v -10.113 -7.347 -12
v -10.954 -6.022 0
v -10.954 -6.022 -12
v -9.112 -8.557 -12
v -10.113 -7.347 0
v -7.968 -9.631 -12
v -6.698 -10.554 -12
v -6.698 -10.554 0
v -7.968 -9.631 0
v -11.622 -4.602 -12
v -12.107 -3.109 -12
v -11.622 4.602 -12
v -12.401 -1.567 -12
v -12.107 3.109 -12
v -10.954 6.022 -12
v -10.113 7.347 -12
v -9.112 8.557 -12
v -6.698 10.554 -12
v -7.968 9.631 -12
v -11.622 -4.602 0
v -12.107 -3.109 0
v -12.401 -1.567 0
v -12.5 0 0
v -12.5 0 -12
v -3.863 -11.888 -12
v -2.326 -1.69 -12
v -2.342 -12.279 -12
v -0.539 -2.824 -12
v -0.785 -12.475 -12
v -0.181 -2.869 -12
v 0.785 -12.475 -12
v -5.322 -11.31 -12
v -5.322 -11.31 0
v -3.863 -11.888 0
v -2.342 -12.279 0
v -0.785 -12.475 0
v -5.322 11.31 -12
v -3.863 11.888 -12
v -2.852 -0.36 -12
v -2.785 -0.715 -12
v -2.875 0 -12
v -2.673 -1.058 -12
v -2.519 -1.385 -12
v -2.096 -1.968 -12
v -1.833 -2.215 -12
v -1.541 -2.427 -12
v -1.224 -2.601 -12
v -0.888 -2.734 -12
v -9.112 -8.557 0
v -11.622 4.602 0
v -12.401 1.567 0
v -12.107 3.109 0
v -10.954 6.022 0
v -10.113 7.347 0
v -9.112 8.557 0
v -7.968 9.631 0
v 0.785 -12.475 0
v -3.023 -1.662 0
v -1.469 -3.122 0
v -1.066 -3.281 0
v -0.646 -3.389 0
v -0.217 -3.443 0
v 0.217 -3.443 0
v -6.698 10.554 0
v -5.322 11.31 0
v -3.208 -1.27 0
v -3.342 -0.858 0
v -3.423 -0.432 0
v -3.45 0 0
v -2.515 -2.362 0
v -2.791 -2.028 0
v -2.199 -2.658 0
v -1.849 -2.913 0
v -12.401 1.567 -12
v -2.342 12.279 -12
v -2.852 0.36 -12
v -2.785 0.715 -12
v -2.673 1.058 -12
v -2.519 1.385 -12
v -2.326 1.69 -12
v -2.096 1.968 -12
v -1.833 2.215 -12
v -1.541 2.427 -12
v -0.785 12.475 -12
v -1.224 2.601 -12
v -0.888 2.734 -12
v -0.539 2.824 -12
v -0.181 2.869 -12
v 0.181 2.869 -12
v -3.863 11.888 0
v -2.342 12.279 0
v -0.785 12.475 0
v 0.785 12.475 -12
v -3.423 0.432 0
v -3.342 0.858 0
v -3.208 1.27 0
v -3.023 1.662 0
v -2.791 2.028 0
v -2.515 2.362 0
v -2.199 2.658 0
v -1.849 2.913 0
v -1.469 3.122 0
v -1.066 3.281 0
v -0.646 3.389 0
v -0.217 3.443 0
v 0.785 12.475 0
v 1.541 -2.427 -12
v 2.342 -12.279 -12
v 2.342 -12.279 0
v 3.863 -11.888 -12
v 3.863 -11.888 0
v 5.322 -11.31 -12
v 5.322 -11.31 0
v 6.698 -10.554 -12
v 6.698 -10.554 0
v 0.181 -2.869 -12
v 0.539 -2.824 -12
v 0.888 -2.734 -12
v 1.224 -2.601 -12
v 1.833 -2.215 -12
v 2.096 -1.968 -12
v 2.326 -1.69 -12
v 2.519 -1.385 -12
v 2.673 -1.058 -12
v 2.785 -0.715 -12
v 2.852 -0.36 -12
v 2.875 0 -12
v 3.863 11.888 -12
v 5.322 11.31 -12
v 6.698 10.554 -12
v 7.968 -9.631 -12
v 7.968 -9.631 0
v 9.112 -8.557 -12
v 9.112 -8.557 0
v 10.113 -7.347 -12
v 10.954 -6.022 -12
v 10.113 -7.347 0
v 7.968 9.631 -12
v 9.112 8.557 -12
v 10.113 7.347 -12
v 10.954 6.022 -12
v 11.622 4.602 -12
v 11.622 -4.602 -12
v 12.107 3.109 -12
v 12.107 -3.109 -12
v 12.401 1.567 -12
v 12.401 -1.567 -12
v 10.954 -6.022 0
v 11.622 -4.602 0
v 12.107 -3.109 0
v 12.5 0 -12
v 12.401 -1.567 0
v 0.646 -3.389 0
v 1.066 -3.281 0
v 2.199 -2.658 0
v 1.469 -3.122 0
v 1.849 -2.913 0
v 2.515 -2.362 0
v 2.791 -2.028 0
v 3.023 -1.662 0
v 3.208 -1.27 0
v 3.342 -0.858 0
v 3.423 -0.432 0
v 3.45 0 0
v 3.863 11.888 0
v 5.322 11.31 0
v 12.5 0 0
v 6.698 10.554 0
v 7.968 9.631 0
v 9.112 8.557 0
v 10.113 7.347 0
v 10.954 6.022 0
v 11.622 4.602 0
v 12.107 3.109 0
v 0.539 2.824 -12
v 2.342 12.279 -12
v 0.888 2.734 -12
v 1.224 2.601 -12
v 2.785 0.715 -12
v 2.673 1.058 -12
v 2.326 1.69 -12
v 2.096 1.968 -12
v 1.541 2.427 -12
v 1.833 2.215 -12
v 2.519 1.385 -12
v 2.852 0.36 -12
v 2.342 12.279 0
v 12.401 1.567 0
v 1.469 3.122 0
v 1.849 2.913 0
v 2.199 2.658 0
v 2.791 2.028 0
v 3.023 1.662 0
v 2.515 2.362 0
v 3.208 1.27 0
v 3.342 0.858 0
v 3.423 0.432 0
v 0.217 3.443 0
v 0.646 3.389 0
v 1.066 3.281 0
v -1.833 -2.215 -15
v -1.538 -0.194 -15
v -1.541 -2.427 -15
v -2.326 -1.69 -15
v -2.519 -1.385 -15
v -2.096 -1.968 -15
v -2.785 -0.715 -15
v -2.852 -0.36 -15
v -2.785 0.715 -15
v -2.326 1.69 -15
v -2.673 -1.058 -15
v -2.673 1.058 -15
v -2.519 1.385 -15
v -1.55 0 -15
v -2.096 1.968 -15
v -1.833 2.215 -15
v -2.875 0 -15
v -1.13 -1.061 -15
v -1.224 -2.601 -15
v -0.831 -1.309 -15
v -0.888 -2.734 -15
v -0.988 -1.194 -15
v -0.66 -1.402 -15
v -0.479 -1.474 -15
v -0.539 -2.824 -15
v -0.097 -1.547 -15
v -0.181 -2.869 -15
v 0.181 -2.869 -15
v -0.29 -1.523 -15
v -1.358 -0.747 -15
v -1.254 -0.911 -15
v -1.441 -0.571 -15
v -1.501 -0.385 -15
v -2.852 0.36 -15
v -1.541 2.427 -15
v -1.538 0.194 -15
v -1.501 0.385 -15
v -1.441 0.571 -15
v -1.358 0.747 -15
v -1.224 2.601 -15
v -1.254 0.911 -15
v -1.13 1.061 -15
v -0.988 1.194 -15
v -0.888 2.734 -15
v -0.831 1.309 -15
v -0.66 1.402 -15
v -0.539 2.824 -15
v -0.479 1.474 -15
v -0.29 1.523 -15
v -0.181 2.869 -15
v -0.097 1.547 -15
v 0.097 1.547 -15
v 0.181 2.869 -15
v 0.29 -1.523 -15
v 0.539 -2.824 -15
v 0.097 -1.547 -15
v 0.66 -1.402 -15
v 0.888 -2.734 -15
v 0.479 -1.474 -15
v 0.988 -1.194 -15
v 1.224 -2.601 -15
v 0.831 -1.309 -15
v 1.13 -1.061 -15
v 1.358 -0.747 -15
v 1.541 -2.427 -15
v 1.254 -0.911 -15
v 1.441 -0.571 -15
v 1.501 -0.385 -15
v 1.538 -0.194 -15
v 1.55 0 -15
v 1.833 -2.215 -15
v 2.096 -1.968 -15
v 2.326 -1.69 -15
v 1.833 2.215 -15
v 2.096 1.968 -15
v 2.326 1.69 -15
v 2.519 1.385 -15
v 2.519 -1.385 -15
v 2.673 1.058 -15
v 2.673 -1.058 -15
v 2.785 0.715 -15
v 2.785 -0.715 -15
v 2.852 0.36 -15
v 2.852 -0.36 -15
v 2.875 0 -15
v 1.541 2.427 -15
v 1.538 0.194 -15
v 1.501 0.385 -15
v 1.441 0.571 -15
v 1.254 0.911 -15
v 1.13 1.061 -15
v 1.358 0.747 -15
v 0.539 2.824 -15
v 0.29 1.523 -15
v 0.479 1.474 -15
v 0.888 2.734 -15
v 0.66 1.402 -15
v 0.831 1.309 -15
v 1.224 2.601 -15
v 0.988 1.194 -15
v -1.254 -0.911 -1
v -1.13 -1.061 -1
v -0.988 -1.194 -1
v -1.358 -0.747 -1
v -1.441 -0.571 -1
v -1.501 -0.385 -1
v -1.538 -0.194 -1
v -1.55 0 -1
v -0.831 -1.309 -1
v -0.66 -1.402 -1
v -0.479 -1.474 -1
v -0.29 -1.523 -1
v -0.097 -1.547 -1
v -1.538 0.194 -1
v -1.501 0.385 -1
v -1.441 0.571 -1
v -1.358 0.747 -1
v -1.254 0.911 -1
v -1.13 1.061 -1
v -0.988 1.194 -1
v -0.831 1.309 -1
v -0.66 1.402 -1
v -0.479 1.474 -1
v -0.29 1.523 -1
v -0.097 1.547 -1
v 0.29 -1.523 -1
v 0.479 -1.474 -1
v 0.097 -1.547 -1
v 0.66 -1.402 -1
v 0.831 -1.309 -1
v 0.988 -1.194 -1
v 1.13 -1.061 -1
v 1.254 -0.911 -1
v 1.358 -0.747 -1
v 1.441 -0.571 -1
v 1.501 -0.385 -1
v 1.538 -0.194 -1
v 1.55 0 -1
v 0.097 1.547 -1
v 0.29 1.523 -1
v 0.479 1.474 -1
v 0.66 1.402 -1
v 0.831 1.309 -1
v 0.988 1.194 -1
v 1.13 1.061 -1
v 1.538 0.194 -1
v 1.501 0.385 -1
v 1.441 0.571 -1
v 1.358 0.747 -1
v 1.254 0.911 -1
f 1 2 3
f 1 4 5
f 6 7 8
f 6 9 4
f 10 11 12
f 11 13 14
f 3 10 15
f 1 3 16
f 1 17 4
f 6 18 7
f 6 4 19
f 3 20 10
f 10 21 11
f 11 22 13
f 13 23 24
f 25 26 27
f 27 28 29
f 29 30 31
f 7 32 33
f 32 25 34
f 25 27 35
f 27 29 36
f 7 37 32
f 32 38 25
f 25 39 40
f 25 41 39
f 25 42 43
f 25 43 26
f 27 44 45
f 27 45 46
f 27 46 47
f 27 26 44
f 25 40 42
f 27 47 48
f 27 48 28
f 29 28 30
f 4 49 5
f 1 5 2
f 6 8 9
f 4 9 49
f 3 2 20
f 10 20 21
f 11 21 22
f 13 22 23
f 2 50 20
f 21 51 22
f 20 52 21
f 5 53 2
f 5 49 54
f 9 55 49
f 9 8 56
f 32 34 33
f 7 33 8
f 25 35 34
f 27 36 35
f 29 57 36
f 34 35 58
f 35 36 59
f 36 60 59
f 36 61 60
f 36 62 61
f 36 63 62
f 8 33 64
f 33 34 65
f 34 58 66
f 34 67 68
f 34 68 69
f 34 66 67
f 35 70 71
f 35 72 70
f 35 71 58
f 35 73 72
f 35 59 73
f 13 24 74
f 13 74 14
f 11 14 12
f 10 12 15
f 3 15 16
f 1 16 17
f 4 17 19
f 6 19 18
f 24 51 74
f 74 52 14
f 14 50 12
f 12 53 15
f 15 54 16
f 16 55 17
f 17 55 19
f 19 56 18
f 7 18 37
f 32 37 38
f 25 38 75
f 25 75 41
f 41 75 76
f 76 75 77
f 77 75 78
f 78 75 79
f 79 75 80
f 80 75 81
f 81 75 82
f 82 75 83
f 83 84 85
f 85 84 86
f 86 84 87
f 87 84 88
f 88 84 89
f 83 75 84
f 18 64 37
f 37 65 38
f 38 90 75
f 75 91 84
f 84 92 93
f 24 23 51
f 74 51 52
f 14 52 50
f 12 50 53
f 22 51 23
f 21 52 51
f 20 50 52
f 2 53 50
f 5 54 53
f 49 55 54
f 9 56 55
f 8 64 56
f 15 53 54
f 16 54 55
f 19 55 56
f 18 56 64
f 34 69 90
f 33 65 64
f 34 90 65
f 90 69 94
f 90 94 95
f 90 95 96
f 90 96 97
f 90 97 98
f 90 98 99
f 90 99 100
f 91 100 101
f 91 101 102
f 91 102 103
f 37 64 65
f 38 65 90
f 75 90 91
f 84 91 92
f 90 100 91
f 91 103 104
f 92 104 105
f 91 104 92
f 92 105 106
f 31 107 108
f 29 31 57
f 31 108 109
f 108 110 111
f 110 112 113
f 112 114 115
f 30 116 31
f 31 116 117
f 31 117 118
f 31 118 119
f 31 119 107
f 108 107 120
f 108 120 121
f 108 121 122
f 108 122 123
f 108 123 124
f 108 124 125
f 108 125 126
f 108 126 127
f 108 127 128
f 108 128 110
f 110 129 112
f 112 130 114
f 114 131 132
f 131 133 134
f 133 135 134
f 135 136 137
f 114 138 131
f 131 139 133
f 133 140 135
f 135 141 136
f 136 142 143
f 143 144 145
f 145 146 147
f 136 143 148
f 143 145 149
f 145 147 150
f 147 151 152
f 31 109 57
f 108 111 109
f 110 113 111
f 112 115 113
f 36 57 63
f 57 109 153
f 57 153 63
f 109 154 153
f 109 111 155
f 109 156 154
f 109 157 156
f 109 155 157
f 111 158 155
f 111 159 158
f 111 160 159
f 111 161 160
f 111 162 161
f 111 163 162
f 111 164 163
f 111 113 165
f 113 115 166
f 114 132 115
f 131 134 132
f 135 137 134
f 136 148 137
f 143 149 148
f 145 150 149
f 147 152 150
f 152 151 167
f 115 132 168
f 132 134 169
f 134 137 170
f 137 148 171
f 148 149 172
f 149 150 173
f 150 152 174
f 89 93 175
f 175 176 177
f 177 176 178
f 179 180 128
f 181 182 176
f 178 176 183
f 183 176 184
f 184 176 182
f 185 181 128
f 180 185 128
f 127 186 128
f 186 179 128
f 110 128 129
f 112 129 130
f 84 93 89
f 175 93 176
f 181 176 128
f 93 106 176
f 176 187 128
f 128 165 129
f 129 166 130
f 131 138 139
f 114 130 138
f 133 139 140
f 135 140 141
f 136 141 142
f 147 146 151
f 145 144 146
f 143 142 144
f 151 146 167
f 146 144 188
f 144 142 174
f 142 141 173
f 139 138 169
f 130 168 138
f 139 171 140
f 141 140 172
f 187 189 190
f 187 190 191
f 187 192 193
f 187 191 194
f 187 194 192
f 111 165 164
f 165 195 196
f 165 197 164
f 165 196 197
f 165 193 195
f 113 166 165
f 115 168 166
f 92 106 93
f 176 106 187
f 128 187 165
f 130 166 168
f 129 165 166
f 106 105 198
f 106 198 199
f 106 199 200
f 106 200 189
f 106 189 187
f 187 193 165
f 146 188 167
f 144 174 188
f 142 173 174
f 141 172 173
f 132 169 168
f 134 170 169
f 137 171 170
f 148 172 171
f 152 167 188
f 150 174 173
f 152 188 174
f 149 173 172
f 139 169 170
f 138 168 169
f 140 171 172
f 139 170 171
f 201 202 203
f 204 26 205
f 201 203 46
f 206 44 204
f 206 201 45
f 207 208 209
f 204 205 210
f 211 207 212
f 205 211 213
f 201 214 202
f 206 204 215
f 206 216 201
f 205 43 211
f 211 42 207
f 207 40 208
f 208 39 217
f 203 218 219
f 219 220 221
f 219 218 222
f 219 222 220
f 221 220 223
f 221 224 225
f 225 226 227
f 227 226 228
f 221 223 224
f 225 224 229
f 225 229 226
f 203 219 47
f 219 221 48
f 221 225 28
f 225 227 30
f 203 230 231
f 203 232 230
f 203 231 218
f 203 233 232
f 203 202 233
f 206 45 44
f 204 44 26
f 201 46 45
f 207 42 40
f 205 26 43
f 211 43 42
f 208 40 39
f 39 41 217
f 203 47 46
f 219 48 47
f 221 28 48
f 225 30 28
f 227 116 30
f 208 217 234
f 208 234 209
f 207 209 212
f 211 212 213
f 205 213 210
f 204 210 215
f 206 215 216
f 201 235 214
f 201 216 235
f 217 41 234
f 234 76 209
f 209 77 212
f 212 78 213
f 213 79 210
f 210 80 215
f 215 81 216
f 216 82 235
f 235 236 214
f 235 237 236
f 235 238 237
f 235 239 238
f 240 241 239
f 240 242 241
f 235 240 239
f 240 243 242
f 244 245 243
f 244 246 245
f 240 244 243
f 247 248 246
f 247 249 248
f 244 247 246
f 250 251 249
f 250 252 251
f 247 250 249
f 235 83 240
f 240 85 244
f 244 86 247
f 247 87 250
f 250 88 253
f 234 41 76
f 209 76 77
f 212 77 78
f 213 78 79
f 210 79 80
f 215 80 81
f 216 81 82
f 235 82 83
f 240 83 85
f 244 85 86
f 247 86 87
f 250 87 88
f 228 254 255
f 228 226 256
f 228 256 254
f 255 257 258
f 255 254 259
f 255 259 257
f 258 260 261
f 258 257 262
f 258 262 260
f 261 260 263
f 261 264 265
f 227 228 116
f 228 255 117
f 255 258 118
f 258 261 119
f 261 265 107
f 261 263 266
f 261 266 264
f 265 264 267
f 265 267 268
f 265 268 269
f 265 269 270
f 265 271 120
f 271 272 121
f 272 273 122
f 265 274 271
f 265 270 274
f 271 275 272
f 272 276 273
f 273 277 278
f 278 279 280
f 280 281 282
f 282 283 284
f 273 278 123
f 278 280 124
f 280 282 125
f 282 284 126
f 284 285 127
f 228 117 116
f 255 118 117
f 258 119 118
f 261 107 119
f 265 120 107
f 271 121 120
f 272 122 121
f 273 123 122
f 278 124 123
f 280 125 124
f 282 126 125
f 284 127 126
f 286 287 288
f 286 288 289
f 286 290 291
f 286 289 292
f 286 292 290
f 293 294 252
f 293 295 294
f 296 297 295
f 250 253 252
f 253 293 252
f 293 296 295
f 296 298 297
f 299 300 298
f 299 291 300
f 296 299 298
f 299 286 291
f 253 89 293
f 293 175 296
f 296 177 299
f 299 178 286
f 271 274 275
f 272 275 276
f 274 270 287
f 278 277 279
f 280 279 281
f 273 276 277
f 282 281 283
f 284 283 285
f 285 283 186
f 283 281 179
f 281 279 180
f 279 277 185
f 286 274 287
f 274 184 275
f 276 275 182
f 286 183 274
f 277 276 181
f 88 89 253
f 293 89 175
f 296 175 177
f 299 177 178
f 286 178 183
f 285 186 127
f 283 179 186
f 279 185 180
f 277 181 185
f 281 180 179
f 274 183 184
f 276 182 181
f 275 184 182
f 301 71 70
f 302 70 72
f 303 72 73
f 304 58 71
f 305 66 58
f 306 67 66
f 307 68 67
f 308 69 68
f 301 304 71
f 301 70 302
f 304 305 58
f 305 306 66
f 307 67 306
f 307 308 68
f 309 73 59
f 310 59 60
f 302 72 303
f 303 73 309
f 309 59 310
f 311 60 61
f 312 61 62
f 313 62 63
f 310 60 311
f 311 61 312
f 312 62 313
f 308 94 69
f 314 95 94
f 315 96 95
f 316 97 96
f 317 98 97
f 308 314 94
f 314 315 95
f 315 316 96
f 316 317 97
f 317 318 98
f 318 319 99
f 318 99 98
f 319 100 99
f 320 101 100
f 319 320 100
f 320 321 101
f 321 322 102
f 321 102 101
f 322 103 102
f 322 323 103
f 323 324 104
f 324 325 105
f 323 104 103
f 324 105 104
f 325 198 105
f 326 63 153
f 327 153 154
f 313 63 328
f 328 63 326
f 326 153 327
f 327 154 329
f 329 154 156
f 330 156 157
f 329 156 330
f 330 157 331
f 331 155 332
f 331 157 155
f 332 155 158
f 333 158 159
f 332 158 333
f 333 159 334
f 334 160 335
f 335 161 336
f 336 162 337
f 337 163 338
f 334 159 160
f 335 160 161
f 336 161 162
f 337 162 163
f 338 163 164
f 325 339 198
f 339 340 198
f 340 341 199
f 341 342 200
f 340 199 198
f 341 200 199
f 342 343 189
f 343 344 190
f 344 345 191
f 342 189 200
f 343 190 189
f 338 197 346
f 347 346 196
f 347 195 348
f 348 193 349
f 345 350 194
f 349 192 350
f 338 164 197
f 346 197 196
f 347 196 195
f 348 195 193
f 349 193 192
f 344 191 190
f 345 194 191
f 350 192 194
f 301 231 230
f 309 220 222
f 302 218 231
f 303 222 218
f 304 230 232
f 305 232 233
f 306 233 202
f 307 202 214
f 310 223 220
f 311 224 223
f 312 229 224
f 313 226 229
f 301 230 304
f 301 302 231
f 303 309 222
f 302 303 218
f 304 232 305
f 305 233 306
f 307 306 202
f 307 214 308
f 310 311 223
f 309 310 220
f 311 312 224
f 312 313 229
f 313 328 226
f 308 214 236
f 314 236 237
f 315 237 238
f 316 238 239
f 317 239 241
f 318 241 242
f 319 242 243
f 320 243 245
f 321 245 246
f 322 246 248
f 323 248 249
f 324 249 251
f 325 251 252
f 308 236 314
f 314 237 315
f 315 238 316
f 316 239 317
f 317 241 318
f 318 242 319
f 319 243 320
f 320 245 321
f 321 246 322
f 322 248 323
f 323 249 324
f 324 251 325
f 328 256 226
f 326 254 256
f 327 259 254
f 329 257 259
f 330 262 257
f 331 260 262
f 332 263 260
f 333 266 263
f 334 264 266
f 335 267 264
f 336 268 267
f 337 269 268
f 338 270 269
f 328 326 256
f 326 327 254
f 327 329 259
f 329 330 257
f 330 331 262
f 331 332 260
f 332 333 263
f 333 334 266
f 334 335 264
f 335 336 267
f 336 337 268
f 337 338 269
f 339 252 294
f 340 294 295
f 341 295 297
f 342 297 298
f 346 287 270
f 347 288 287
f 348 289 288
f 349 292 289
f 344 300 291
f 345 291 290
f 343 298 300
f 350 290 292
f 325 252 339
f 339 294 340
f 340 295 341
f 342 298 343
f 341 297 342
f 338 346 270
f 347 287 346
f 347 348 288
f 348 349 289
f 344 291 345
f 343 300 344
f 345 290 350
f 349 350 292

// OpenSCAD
$fn = 50;


difference() {
	union() {
		translate(v = [0, 0, -12.0000000000]) {
			cylinder(h = 12, r = 12.5000000000);
		}
		#translate(v = [0, 0, -15.0000000000]) {
			cylinder(h = 15, r = 2.8750000000);
		}
	}
	union() {
		translate(v = [0, 0, 0]) {
			rotate(a = [0, 0, 0]) {
				difference() {
					union() {
						translate(v = [0, 0, -15.0000000000]) {
							cylinder(h = 15, r = 1.2500000000);
						}
						translate(v = [0, 0, -1.0000000000]) {
							cylinder(h = 1.0000000000, r1 = 1.5500000000, r2 = 3.4500000000);
						}
						translate(v = [0, 0, -15.0000000000]) {
							cylinder(h = 15, r = 1.5500000000);
						}
						translate(v = [0, 0, -15.0000000000]) {
							cylinder(h = 15, r = 1.2500000000);
						}
					}
					union();
				}
			}
		}
	}
}
